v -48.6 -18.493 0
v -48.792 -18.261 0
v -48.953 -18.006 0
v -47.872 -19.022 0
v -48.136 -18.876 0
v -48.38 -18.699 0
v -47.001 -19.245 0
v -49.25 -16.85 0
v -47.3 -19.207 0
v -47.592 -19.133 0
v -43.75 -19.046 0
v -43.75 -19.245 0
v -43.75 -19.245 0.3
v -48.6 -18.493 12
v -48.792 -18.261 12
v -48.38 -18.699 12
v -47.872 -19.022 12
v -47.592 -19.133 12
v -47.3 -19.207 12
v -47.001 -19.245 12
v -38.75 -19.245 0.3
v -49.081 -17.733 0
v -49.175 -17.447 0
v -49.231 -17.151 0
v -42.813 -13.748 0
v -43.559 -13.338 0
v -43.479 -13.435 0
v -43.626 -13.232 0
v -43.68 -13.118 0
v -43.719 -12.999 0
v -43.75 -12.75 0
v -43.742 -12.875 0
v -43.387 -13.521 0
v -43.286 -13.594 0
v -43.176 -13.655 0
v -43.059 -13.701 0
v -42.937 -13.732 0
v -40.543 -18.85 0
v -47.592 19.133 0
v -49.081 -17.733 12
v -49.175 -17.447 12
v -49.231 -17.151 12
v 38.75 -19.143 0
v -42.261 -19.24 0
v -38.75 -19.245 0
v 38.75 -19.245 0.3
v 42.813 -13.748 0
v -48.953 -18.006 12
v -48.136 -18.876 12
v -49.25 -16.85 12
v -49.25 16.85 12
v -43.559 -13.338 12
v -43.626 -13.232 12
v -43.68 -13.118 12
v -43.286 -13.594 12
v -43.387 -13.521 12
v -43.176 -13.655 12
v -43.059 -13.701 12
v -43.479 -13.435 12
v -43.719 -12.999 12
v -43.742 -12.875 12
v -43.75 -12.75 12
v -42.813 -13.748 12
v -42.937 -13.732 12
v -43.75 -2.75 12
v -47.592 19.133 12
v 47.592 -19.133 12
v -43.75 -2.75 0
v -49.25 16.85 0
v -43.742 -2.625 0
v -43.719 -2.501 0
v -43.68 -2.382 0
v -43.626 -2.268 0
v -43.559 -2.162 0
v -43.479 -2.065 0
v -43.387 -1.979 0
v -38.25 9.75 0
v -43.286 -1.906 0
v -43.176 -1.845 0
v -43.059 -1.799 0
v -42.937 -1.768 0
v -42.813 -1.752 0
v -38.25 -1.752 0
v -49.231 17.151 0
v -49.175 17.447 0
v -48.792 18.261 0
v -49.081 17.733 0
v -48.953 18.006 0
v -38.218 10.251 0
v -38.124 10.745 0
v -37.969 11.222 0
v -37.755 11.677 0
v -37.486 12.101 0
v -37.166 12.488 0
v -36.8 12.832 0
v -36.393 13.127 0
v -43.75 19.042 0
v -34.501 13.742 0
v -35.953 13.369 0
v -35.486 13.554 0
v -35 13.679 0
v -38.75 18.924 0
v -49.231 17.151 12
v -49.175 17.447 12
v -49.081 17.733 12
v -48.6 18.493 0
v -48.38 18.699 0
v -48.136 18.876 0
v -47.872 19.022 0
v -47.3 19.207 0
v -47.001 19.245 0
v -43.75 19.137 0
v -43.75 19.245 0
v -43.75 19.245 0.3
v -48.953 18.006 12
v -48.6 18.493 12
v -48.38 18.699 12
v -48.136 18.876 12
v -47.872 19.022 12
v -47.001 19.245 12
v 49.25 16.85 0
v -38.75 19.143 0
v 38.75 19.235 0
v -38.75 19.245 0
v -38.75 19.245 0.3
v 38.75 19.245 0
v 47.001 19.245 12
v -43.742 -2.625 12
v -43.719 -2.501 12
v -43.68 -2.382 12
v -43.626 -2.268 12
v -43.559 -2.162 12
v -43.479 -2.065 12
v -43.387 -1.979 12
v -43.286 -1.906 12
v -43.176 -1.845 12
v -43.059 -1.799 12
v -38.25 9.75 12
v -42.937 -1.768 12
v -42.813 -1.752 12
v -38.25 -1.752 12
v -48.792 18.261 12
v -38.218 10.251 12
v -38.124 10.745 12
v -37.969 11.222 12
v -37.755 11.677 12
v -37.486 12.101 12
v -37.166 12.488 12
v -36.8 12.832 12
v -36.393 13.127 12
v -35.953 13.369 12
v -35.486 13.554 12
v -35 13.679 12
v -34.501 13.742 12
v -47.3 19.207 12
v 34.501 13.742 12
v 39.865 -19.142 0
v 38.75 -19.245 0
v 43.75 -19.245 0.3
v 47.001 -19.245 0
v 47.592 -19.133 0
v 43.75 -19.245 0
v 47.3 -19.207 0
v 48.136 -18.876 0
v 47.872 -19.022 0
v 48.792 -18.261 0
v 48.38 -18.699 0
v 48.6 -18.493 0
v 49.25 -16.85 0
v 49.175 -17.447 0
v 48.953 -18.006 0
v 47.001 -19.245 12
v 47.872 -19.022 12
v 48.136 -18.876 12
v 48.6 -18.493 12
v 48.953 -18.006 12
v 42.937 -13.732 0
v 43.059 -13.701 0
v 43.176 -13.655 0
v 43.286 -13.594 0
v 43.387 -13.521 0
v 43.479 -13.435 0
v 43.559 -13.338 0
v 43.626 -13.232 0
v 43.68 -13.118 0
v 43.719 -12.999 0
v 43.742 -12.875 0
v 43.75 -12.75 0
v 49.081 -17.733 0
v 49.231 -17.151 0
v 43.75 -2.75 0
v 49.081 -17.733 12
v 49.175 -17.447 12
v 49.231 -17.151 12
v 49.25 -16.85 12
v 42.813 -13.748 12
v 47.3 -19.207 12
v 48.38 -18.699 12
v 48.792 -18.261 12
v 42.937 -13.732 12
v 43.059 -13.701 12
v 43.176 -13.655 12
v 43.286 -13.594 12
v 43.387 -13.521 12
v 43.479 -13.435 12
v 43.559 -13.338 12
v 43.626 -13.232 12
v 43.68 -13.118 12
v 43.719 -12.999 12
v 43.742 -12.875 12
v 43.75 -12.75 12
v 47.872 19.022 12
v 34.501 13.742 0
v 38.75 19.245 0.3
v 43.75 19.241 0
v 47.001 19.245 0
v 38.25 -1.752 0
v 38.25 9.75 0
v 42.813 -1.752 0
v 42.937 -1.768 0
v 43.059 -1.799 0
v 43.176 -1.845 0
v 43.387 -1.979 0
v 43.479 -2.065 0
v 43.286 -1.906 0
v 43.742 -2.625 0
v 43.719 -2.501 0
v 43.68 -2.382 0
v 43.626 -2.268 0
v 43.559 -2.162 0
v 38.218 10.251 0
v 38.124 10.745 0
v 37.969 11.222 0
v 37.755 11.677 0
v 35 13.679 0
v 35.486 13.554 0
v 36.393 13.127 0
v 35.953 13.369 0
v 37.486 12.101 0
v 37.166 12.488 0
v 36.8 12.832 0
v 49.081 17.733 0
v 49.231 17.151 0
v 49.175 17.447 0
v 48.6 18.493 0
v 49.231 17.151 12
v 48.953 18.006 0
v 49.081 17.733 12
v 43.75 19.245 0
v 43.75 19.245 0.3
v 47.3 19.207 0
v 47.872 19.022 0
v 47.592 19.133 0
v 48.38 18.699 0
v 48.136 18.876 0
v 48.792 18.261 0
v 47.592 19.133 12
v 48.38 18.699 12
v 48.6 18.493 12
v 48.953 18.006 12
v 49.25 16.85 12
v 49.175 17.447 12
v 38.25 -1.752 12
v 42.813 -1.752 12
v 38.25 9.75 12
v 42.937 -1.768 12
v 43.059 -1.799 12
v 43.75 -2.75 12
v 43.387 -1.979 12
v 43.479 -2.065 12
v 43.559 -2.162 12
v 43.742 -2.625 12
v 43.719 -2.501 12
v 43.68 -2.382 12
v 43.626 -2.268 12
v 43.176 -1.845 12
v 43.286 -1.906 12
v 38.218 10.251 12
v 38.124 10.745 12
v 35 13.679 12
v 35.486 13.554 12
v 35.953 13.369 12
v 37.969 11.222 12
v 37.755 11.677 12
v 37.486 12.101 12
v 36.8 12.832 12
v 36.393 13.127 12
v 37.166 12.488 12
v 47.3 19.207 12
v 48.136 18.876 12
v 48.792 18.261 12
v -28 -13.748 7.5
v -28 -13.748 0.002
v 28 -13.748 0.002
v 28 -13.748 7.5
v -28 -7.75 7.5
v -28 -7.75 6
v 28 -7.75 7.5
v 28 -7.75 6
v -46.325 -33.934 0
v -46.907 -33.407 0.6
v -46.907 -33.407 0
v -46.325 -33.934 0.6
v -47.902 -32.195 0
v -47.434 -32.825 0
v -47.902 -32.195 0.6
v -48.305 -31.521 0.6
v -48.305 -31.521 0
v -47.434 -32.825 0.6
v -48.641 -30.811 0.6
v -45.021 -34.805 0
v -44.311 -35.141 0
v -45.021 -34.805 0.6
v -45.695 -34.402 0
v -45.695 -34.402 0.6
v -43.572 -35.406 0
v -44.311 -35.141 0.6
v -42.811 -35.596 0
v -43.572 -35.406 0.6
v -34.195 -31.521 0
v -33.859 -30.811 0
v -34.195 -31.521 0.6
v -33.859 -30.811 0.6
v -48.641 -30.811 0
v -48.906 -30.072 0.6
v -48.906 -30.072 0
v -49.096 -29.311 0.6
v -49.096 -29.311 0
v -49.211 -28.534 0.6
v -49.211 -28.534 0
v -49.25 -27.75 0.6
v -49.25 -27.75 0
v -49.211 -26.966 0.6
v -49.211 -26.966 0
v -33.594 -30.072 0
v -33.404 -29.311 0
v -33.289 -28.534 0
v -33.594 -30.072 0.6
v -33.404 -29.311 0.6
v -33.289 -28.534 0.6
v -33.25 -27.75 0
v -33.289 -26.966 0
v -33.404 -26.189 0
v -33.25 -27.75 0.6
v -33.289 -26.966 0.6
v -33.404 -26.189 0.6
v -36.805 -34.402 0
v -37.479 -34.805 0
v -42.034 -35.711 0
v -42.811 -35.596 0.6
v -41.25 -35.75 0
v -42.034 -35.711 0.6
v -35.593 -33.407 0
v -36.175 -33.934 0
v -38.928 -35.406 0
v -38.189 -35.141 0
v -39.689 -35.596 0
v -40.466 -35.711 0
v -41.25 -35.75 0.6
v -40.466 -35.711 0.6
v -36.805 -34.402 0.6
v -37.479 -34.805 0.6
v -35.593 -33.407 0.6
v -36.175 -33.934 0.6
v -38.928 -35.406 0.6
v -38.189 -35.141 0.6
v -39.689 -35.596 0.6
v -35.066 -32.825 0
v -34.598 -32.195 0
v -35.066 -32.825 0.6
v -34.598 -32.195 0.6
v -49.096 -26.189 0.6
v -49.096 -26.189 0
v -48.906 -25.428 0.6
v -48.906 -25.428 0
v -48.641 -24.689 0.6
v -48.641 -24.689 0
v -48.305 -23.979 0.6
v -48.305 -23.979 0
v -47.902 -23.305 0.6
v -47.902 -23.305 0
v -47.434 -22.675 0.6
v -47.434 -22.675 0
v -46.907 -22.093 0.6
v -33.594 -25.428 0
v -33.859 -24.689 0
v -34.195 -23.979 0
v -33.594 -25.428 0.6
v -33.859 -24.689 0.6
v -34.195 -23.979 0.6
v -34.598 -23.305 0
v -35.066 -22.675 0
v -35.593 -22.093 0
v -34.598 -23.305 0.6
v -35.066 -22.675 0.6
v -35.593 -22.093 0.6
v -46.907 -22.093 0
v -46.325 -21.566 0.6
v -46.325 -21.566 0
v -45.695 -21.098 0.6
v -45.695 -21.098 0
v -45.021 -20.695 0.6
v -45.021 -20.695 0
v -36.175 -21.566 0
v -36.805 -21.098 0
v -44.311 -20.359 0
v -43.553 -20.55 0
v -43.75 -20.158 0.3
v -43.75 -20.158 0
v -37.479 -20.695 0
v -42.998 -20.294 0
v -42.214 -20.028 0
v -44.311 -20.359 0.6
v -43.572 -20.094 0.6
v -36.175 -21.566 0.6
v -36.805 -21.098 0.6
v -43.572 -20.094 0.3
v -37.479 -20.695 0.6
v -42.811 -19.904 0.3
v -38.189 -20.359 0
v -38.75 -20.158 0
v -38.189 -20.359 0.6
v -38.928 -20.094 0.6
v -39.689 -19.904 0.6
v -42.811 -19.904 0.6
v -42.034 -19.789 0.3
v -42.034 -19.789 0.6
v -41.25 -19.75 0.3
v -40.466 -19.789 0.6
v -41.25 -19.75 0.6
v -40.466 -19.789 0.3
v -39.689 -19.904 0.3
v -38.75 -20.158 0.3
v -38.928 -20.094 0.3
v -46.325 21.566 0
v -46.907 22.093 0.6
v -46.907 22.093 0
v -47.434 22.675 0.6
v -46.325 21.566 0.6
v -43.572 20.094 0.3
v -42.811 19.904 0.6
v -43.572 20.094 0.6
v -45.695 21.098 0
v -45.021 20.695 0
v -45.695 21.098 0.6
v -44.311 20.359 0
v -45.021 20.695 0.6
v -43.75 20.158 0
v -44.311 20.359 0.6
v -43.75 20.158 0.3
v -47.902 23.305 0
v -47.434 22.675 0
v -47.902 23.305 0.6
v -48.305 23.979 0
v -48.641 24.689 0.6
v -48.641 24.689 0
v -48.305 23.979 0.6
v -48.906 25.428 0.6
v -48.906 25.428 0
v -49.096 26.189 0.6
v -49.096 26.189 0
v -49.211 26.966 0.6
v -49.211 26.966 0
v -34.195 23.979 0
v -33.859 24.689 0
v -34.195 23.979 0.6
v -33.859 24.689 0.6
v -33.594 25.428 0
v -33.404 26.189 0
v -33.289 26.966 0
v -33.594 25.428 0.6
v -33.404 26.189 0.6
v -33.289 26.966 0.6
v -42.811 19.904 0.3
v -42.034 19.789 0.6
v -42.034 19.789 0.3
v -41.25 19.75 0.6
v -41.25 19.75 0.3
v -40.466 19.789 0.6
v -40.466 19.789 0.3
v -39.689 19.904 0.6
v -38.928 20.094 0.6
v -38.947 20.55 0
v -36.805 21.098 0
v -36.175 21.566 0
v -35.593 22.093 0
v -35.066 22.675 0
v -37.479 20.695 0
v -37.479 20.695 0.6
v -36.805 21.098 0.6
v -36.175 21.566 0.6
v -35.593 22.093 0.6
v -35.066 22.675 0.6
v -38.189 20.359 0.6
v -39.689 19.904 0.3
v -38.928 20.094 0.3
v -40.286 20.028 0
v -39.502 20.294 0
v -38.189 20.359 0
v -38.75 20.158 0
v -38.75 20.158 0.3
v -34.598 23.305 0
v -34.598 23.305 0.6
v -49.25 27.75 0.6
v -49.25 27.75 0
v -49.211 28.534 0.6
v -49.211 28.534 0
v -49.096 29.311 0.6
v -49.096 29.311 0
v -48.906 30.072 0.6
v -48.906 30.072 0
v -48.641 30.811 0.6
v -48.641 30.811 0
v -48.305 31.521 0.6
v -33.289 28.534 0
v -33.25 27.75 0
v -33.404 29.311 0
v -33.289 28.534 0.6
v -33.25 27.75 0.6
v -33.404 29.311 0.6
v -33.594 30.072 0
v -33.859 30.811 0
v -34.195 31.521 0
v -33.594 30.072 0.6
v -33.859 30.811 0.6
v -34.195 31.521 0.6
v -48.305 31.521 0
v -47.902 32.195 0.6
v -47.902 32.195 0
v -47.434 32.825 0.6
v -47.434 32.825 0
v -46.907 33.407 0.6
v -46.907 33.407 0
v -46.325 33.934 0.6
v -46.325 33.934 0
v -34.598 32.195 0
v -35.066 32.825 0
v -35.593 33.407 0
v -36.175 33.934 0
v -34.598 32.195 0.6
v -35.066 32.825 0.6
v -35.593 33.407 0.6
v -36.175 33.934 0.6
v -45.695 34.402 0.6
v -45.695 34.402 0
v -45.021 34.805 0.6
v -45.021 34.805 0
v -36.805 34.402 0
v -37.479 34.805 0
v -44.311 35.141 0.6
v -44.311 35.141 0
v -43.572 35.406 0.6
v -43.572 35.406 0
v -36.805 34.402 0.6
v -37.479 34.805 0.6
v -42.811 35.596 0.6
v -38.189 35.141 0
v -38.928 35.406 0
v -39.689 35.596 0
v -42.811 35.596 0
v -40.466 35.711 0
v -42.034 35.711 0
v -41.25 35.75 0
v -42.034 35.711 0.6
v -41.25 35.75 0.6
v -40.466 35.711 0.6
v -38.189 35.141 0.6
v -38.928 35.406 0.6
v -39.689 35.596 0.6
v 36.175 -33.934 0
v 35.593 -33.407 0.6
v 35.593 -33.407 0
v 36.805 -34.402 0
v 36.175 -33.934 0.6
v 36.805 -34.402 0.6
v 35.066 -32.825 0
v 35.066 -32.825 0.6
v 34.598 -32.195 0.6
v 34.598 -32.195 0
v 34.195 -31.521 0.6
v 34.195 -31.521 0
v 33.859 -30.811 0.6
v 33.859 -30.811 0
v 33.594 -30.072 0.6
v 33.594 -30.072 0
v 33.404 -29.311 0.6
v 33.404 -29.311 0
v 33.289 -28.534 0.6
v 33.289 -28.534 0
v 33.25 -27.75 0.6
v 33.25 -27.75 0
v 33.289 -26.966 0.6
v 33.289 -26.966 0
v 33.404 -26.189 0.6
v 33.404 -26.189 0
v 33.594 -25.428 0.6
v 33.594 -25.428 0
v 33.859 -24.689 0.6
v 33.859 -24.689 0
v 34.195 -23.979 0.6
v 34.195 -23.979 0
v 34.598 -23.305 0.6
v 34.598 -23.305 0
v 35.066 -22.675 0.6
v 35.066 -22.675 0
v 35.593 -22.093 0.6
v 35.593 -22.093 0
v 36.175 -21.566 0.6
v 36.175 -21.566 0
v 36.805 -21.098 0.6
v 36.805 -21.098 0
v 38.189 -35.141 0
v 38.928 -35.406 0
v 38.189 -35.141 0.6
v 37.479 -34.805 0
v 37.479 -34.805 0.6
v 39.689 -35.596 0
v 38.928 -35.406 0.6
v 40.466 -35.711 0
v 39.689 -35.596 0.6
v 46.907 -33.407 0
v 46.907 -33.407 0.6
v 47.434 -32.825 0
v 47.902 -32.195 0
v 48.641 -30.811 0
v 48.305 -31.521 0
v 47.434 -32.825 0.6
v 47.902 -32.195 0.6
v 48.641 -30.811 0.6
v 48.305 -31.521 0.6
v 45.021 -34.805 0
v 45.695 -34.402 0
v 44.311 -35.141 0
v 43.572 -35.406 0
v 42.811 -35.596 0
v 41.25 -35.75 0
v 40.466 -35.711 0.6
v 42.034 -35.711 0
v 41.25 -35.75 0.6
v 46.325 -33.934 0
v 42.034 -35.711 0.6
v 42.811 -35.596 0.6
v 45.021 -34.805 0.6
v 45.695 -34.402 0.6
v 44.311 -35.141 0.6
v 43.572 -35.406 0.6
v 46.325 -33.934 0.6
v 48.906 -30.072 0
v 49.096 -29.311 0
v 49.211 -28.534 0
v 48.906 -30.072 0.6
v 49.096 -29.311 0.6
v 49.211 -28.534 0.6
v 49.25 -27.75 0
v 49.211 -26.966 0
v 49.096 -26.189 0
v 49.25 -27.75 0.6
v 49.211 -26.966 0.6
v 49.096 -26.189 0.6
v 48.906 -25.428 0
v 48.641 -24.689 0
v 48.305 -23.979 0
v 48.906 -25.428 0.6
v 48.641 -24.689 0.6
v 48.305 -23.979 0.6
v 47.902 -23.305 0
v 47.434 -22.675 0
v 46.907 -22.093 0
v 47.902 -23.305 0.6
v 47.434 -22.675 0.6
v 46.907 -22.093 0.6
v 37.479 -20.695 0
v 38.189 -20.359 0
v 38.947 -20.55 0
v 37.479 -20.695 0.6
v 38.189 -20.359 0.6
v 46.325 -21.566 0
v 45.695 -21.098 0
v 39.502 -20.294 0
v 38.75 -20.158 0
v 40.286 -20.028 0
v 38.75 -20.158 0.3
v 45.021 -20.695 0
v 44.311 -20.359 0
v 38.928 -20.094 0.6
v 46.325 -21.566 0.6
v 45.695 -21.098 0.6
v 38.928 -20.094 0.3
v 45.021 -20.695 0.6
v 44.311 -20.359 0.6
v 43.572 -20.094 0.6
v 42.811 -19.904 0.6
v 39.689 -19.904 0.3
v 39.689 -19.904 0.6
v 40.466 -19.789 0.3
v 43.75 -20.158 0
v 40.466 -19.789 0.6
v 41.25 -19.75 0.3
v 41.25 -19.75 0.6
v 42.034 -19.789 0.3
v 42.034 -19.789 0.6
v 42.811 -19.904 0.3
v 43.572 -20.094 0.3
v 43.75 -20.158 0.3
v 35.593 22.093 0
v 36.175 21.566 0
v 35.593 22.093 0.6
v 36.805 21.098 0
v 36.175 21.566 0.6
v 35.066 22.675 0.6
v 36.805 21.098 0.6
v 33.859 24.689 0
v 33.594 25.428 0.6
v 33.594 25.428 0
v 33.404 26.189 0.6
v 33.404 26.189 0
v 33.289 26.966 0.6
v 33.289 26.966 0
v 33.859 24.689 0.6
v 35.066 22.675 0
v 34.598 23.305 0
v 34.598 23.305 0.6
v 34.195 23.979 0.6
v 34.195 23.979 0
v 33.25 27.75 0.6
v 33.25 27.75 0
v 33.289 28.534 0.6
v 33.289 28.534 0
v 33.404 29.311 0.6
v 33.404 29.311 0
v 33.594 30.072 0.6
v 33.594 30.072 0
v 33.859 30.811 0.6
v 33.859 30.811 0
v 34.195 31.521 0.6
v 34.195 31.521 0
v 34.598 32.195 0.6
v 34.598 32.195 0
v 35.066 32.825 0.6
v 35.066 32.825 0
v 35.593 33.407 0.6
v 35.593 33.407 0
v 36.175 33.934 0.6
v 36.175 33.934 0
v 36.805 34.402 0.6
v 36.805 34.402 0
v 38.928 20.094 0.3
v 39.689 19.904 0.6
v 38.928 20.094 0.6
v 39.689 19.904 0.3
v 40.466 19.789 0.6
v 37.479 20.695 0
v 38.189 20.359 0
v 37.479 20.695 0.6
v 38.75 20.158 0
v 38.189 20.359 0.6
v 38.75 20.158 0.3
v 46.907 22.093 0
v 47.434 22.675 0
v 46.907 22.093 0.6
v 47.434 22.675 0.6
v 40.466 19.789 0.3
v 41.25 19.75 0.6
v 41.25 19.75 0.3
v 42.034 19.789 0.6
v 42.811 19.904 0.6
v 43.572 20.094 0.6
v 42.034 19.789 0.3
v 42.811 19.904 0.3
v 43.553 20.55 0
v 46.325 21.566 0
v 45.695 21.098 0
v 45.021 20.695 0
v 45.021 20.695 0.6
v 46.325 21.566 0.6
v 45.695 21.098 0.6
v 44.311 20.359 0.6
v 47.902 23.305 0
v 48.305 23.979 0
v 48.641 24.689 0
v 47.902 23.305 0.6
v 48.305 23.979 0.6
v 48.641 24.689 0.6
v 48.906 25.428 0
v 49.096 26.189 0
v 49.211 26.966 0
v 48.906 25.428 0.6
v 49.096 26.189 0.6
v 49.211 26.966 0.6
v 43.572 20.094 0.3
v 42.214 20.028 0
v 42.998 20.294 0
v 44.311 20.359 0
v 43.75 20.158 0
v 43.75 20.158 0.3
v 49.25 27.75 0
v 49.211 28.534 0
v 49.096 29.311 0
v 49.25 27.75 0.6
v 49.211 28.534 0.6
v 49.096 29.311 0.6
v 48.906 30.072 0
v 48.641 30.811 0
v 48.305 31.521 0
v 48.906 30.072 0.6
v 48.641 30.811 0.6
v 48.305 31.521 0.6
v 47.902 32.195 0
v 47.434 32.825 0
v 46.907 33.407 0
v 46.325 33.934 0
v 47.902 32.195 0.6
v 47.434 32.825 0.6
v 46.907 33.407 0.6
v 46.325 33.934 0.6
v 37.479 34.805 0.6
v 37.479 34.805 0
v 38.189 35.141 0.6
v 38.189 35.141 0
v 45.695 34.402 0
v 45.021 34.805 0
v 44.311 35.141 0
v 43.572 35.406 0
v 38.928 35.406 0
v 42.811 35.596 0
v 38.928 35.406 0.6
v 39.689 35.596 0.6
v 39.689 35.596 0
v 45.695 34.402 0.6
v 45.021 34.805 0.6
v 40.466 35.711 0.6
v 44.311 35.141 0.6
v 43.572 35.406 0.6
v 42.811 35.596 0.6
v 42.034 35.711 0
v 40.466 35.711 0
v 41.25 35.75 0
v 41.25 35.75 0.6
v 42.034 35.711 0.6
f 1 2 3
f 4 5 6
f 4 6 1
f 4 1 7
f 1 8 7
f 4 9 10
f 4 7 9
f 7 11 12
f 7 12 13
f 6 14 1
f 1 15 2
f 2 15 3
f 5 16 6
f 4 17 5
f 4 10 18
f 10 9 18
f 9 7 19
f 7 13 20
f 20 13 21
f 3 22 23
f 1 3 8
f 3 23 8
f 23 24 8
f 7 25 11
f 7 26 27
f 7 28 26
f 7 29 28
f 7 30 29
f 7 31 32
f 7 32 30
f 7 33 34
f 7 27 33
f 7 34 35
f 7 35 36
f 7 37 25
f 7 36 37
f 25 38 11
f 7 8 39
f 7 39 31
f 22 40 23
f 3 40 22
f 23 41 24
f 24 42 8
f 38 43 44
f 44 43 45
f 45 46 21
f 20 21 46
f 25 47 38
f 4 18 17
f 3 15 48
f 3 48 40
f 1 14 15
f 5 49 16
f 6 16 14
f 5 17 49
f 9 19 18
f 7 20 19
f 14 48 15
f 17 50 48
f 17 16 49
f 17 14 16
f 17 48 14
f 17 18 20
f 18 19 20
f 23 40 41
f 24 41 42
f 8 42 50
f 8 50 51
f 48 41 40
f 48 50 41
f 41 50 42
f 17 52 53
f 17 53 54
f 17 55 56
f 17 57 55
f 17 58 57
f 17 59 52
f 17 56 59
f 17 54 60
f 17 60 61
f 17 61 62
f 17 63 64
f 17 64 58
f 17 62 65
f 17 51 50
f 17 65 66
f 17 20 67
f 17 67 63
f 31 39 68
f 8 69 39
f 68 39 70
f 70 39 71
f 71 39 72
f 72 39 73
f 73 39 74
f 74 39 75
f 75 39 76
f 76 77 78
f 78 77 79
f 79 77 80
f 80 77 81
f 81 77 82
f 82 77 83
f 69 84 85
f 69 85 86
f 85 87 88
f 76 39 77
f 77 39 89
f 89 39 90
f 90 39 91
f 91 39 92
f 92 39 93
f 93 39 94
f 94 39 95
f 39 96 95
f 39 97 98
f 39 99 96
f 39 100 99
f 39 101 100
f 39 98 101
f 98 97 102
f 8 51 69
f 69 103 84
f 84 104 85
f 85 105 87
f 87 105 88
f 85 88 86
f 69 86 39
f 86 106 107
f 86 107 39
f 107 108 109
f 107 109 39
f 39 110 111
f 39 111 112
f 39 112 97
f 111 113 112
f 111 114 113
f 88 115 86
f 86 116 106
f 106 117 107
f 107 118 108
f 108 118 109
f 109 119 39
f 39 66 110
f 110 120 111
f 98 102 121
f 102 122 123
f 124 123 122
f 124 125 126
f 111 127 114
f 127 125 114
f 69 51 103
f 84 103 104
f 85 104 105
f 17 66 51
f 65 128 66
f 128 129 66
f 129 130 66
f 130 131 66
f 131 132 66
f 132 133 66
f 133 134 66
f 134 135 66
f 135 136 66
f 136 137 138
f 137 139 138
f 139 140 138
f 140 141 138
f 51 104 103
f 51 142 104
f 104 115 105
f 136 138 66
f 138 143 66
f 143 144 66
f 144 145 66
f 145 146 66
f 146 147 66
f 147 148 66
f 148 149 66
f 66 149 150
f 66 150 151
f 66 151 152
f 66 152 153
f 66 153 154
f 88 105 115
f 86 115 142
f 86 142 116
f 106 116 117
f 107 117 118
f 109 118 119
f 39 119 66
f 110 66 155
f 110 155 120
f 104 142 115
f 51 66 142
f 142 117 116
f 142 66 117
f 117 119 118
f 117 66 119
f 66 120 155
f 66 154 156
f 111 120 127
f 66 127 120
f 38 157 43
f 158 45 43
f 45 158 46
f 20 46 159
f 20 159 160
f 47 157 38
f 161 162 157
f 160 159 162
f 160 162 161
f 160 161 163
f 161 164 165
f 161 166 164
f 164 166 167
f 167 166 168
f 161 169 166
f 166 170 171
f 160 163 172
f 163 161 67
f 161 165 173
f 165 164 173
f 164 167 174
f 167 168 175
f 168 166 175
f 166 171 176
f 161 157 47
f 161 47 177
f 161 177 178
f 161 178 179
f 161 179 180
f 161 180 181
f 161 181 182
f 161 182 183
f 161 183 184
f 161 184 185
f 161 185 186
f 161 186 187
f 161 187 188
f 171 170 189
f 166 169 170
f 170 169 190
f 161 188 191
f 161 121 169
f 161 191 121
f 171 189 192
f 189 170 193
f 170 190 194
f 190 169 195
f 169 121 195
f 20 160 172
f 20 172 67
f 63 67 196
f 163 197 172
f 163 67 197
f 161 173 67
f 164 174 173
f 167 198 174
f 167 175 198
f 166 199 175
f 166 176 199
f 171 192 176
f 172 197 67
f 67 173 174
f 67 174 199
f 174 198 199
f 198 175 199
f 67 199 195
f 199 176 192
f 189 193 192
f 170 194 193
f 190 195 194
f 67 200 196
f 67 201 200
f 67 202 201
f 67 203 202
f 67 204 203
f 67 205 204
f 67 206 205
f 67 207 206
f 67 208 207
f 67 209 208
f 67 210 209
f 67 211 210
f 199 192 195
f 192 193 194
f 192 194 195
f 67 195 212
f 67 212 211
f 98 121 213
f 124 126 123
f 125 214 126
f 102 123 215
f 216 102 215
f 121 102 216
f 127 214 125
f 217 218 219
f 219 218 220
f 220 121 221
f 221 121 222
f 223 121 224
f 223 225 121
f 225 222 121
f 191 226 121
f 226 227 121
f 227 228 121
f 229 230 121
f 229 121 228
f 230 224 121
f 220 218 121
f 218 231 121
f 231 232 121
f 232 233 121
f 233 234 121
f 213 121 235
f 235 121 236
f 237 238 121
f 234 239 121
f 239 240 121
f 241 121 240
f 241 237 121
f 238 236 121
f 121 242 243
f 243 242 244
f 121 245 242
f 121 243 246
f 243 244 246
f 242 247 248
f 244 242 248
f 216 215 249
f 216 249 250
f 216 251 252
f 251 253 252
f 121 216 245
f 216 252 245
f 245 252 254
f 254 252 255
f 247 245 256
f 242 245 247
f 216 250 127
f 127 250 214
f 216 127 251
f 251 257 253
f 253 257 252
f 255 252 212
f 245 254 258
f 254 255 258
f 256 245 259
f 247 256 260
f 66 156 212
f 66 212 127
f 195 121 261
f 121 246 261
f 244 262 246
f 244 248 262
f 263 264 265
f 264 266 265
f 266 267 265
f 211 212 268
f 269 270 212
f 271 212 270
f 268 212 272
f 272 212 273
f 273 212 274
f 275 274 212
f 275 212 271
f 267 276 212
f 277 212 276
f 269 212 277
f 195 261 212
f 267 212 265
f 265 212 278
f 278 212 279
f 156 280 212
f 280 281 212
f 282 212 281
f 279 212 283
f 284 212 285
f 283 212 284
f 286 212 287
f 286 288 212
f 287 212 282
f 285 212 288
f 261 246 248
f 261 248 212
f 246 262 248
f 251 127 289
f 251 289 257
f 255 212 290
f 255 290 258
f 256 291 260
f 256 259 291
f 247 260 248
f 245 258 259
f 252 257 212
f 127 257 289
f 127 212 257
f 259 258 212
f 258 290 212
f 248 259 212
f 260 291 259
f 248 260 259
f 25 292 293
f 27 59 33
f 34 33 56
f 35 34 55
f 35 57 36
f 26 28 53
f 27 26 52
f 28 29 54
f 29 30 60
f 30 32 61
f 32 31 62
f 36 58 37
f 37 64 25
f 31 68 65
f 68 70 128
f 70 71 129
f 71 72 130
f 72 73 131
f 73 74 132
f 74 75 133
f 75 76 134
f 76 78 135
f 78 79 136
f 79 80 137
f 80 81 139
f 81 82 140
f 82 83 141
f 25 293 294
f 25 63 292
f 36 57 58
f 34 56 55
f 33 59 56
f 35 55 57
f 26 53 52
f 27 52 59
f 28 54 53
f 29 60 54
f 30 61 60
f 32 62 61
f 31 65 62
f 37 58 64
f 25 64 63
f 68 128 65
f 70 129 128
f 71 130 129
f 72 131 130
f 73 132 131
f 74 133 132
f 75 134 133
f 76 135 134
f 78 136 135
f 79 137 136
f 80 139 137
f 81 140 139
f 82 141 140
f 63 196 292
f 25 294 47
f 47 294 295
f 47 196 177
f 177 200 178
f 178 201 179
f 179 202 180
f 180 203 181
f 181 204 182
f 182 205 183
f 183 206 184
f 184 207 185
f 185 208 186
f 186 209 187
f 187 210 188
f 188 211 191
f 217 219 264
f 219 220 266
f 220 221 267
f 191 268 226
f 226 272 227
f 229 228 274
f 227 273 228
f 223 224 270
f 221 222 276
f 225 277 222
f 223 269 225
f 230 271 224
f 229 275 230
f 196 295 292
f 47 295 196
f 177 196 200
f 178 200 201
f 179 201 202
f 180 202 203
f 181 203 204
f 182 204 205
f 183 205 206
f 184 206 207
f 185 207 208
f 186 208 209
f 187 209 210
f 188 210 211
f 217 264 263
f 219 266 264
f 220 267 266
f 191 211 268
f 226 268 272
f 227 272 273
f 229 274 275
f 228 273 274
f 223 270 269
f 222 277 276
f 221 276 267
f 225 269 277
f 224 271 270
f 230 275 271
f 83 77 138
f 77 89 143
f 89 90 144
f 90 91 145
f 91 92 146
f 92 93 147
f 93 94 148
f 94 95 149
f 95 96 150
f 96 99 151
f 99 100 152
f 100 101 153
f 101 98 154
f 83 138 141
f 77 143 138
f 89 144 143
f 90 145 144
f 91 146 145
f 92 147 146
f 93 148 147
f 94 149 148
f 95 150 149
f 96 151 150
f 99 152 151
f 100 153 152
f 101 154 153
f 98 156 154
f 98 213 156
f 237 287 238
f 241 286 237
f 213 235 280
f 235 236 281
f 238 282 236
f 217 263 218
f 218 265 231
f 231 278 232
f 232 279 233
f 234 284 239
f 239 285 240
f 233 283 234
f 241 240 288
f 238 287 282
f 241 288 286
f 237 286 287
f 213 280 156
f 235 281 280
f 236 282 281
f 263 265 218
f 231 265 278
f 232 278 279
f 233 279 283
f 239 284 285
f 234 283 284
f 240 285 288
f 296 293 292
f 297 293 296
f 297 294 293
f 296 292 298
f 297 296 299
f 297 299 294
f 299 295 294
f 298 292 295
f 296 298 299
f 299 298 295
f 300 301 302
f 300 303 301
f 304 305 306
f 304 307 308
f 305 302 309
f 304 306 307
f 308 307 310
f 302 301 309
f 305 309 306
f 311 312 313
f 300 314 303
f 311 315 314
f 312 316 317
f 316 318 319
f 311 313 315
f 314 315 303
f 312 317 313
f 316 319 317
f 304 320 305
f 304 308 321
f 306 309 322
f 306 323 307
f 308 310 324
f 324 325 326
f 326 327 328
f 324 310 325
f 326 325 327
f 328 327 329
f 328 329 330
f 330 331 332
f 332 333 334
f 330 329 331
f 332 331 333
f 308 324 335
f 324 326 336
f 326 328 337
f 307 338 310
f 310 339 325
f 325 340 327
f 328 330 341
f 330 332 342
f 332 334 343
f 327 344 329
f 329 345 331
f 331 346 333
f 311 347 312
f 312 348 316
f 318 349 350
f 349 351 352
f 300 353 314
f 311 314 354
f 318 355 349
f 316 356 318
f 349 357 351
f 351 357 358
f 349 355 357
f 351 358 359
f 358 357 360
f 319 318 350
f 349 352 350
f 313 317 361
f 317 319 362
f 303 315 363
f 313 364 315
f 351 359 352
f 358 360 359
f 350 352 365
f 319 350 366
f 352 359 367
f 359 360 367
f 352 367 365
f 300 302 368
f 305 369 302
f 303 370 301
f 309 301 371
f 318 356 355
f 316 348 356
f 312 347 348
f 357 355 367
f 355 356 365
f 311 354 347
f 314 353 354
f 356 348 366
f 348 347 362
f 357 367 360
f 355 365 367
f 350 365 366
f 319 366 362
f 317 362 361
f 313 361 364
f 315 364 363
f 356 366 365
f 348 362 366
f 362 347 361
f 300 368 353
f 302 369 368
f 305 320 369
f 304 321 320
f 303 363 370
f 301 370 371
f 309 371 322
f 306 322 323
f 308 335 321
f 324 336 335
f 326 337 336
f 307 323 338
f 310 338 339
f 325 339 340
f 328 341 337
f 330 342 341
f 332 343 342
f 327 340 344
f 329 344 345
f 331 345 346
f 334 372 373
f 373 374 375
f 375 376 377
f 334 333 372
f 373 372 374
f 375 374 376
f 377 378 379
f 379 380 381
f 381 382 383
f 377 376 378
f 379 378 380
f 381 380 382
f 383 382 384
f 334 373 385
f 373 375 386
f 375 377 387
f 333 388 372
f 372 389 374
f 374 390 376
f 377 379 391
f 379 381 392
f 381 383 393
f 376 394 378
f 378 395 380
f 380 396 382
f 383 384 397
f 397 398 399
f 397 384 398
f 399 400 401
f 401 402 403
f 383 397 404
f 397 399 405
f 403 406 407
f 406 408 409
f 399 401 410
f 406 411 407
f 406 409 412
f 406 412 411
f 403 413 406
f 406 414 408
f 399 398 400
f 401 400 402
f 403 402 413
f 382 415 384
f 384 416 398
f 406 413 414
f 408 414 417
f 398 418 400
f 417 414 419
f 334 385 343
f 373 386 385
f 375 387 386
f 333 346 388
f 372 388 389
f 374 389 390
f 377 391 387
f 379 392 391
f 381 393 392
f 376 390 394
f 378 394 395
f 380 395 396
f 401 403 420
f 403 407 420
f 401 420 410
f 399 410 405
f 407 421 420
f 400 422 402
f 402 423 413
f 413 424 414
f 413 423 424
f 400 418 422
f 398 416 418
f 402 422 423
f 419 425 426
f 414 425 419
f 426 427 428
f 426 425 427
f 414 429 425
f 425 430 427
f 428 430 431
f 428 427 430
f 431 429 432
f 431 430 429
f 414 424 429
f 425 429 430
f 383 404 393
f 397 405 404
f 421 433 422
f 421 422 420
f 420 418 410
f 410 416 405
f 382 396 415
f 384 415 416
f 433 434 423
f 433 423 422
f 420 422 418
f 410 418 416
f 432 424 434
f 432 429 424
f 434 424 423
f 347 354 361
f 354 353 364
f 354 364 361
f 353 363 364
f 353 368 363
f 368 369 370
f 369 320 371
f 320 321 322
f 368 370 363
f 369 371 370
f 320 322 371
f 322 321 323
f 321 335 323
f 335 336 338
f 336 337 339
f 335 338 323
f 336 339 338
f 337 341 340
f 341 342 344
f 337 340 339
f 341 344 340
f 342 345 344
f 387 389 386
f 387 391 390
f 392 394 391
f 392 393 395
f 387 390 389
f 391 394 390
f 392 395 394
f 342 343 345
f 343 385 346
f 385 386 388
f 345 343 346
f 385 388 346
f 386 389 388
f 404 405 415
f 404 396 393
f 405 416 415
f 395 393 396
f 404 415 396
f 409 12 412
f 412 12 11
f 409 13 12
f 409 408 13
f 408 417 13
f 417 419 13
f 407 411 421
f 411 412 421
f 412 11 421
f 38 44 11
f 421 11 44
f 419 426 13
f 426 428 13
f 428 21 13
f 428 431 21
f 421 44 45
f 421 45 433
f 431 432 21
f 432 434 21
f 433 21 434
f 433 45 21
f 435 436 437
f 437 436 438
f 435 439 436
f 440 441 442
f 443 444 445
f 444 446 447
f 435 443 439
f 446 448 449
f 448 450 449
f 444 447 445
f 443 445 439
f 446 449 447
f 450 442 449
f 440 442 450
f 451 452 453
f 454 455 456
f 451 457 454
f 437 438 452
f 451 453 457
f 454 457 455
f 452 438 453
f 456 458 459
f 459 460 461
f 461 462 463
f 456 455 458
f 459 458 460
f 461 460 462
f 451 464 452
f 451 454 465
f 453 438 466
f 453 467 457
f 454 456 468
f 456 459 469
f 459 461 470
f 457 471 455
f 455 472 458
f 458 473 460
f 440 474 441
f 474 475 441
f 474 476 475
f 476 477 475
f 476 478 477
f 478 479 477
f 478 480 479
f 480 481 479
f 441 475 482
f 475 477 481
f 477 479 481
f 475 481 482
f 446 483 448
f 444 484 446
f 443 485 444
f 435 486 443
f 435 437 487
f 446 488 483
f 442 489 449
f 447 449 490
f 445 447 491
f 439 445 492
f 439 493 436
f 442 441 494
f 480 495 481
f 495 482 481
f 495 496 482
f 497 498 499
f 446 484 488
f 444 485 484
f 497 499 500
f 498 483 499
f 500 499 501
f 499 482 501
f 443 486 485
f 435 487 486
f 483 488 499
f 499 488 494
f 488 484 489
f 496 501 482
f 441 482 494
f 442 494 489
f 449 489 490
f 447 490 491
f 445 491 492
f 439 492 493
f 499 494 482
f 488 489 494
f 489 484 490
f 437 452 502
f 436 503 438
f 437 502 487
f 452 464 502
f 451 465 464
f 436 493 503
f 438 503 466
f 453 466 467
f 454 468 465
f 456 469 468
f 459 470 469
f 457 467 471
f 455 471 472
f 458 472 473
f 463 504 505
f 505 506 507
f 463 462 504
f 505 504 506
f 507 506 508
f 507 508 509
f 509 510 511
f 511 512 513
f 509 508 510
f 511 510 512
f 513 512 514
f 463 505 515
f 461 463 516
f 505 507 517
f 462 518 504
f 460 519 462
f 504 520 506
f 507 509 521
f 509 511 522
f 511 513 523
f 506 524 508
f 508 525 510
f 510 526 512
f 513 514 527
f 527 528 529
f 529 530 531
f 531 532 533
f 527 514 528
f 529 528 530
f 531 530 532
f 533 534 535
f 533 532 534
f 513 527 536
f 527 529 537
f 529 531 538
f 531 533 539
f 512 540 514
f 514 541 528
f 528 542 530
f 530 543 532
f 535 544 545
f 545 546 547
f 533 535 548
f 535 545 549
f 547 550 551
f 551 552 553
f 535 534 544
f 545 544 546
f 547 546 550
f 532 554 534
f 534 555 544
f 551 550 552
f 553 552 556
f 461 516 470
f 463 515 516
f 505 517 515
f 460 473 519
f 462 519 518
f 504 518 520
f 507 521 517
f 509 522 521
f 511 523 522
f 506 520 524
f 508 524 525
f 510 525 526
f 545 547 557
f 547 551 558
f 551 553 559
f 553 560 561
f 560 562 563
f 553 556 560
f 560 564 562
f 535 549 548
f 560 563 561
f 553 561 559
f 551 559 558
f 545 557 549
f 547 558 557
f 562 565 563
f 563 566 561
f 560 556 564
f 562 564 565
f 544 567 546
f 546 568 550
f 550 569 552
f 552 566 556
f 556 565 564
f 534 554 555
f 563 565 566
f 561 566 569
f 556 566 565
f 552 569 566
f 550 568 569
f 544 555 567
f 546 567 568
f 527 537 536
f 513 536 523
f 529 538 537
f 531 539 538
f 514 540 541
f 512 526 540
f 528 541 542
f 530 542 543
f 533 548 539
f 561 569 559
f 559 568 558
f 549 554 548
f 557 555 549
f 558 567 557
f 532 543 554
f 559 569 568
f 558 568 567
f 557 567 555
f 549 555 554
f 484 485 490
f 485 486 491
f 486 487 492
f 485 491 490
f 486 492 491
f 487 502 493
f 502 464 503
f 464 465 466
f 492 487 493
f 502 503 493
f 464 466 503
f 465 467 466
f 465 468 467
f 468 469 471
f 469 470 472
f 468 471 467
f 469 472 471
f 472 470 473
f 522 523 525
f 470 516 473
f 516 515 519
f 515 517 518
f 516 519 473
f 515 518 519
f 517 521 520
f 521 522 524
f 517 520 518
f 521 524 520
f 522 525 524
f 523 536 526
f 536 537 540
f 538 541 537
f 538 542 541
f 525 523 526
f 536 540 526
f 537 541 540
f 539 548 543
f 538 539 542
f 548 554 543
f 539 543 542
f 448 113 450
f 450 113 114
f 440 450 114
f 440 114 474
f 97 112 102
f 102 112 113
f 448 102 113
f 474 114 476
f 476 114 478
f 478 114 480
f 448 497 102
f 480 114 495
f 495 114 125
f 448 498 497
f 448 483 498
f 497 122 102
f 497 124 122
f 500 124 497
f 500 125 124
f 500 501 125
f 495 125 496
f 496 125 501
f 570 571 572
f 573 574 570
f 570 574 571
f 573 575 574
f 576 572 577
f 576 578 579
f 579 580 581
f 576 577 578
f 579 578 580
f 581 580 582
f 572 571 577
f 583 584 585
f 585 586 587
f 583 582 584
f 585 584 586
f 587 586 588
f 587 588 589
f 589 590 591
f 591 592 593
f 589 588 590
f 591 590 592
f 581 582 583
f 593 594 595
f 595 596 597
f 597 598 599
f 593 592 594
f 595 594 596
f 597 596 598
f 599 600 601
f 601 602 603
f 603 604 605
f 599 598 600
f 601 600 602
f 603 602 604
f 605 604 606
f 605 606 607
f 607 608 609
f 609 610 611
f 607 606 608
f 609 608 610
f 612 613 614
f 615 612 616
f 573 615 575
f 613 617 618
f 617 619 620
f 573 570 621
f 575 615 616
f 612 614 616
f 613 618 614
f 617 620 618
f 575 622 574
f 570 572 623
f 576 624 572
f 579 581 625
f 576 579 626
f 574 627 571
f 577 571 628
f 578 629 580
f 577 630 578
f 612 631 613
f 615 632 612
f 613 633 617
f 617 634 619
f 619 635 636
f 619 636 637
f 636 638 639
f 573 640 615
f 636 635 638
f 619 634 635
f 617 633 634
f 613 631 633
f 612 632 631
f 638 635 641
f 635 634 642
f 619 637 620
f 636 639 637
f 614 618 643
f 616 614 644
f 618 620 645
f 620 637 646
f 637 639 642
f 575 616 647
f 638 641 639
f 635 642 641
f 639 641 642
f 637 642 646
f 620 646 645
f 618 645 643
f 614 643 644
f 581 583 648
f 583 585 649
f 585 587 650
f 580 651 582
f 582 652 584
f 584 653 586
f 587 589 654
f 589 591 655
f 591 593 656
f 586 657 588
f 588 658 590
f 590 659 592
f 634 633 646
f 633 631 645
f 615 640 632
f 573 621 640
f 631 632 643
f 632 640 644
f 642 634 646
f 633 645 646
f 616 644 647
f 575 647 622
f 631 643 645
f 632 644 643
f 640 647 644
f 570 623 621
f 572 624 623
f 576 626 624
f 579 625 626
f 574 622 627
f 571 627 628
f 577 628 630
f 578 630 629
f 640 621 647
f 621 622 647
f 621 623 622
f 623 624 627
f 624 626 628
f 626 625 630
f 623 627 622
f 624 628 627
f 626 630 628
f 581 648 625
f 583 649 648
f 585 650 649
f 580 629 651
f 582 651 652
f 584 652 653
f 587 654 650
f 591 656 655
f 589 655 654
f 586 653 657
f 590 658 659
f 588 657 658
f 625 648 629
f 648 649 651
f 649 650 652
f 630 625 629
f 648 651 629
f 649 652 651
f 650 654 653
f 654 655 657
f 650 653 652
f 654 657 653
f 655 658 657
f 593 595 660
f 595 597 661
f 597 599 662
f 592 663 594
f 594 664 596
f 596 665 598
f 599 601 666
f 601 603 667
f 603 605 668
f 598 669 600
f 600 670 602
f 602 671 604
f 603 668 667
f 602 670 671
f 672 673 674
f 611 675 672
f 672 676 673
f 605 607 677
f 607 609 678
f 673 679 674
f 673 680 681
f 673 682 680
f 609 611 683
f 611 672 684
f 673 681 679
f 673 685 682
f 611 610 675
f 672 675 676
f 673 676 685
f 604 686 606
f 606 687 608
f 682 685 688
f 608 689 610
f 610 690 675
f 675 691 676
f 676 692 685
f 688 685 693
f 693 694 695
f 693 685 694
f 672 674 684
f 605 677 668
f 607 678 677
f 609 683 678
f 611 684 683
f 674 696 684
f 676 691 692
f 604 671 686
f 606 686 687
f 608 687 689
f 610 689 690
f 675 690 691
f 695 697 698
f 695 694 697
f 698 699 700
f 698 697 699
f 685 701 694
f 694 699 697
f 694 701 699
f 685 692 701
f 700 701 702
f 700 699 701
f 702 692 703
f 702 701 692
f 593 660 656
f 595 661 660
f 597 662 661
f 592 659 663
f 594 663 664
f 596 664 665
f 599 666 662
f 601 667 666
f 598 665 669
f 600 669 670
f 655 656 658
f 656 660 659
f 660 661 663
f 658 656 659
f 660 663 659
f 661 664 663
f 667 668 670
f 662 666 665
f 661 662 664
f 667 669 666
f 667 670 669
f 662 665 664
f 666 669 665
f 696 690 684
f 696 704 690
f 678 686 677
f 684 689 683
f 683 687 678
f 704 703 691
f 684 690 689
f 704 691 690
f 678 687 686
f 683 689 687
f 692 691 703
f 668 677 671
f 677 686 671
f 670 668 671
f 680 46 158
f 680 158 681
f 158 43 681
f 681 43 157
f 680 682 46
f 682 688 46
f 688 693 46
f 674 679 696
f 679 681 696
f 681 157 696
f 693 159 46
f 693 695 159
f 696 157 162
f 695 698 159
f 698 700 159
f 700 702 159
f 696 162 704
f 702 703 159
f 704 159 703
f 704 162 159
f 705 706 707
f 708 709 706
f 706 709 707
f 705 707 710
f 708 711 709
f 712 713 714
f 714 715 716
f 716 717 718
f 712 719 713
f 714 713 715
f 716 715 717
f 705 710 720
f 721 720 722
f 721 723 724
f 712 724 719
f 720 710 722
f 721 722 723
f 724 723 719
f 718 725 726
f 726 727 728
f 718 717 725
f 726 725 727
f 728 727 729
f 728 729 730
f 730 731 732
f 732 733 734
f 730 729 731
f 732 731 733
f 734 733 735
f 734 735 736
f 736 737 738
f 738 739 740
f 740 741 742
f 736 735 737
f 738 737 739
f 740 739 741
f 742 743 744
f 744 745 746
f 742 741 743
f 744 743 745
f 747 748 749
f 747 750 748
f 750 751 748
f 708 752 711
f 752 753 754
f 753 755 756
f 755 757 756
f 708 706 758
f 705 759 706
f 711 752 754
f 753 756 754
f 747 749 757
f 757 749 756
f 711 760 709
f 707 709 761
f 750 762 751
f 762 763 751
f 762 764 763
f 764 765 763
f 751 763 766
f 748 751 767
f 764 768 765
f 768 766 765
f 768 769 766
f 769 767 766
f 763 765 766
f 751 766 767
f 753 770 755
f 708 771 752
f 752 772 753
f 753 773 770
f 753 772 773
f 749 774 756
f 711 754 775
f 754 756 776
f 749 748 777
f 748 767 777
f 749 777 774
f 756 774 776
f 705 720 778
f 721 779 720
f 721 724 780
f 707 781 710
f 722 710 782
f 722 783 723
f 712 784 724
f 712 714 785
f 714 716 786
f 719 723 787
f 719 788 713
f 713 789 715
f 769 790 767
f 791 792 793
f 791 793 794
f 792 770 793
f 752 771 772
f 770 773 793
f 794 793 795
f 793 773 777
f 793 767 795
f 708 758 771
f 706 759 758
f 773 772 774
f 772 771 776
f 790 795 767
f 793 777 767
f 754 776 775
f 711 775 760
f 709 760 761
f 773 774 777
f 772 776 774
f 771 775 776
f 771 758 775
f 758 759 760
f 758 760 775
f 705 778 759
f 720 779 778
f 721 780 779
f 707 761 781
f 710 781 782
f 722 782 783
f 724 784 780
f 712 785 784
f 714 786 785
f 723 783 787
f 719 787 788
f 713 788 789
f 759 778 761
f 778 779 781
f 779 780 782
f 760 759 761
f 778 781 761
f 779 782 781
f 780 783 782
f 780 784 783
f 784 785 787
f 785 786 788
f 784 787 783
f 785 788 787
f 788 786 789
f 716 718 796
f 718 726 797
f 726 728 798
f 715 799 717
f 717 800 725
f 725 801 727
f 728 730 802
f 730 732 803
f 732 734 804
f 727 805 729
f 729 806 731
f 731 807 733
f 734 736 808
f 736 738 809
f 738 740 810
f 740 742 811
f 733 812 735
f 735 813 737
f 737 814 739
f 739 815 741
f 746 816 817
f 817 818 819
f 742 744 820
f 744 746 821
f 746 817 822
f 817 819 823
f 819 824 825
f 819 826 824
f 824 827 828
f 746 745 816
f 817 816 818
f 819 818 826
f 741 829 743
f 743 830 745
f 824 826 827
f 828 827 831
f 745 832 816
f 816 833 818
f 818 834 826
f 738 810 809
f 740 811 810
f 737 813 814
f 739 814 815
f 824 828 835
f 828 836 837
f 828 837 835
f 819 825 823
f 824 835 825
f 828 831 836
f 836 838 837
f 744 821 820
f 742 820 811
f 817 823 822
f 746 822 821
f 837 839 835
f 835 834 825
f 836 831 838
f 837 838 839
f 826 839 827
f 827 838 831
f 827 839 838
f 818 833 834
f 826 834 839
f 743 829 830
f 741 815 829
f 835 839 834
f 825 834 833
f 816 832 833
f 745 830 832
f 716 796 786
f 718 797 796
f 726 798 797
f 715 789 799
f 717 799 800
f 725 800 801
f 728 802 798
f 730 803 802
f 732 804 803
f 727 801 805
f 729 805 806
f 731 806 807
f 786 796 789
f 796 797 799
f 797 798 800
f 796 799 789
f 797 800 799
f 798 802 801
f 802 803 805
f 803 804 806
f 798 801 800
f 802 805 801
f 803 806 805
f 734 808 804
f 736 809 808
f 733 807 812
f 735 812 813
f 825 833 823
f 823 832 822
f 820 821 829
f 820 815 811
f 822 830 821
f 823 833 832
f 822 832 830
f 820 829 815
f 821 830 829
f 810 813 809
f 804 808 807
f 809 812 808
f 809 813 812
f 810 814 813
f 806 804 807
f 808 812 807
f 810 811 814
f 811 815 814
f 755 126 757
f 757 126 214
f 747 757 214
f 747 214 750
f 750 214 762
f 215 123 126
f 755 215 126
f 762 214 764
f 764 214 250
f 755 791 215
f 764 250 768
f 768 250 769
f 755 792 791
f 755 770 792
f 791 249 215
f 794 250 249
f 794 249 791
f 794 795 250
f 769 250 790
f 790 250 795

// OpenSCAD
$fn = 50;

union() {
	difference() {
		union() {
			hull() {
				translate(v = [-46.85, 16.85, 0]) {
					cylinder(h = 12, r = 2.4);
				}
				translate(v = [46.85, 16.85, 0]) {
					cylinder(h = 12, r = 2.4);
				}
				translate(v = [-46.85, -16.85, 0]) {
					cylinder(h = 12, r = 2.4);
				}
				translate(v = [46.85, -16.85, 0]) {
					cylinder(h = 12, r = 2.4);
				}
			}
		}
		union() {
			translate(v = [0.0, -7.75, -0.1]) {
				hull() {
					translate(v = [-42.75, 5.0, 0]) {
						cylinder(h = 12.2, r = 1.0);
					}
					translate(v = [42.75, 5.0, 0]) {
						cylinder(h = 12.2, r = 1.0);
					}
					translate(v = [-42.75, -5.0, 0]) {
						cylinder(h = 12.2, r = 1.0);
					}
					translate(v = [42.75, -5.0, 0]) {
						cylinder(h = 12.2, r = 1.0);
					}
				}
			}
			translate(v = [0.0, 0.0, -0.1]) {
				hull() {
					translate(v = [-34.25, 9.75, 0]) {
						cylinder(h = 12.2, r = 4.0);
					}
					translate(v = [34.25, 9.75, 0]) {
						cylinder(h = 12.2, r = 4.0);
					}
					translate(v = [-34.25, -9.75, 0]) {
						cylinder(h = 12.2, r = 4.0);
					}
					translate(v = [34.25, -9.75, 0]) {
						cylinder(h = 12.2, r = 4.0);
					}
				}
			}
		}
	}
	union() {
		#translate(v = [-28.0, -13.75, 0]) {
			rotate(a = [90, 0, 90]) {
				linear_extrude(height = 56.0) {
					polygon(points = [[-1.8, 0], [0, 0], [6.0, 6.0], [6.0, 7.5], [-1.8, 7.5]]);
				}
			}
		}
		translate(v = [-41.25, -27.75, 0]) {
			linear_extrude(height = 0.6) {
				polygon(points = [[8.0, 0.0], [7.961477813377575, 0.7841371226364848], [7.8462822432258434, 1.560722576129026], [7.655522685857671, 2.3222774180356986], [7.391036260090294, 3.0614674589207183], [7.05537011478684, 3.771173894607981], [6.651756898420362, 4.444561864156817], [6.184083626901896, 5.075146273309164], [5.656854249492381, 5.656854249492381], [5.075146273309164, 6.184083626901895], [4.444561864156818, 6.651756898420362], [3.7711738946079825, 7.0553701147868395], [3.0614674589207187, 7.391036260090294], [2.3222774180356986, 7.6555226858576715], [1.5607225761290267, 7.8462822432258434], [0.7841371226364862, 7.9614778133775745], [4.898587196589413e-16, 8.0], [-0.7841371226364852, 7.961477813377575], [-1.5607225761290255, 7.8462822432258434], [-2.3222774180356973, 7.6555226858576715], [-3.061467458920718, 7.391036260090294], [-3.7711738946079816, 7.05537011478684], [-4.444561864156816, 6.651756898420363], [-5.075146273309163, 6.184083626901897], [-5.65685424949238, 5.656854249492381], [-6.184083626901896, 5.075146273309164], [-6.651756898420363, 4.444561864156817], [-7.0553701147868395, 3.7711738946079825], [-7.391036260090294, 3.061467458920719], [-7.655522685857671, 2.322277418035699], [-7.8462822432258434, 1.5607225761290289], [-7.9614778133775745, 0.7841371226364866], [-8.0, 9.797174393178826e-16], [-7.961477813377575, -0.7841371226364847], [-7.8462822432258434, -1.5607225761290269], [-7.6555226858576715, -2.322277418035697], [-7.391036260090295, -3.0614674589207174], [-7.05537011478684, -3.771173894607981], [-6.651756898420364, -4.444561864156816], [-6.184083626901897, -5.075146273309162], [-5.6568542494923815, -5.65685424949238], [-5.0751462733091675, -6.184083626901893], [-4.444561864156817, -6.651756898420362], [-3.771173894607983, -7.0553701147868395], [-3.0614674589207227, -7.391036260090292], [-2.3222774180356995, -7.655522685857671], [-1.5607225761290293, -7.846282243225843], [-0.7841371226364836, -7.961477813377575], [-1.4695761589768238e-15, -8.0], [0.7841371226364807, -7.961477813377575], [1.5607225761290264, -7.8462822432258434], [2.3222774180356964, -7.6555226858576715], [3.06146745892072, -7.391036260090293], [3.7711738946079807, -7.05537011478684], [4.444561864156815, -6.651756898420364], [5.075146273309165, -6.184083626901895], [5.656854249492379, -5.6568542494923815], [6.184083626901892, -5.0751462733091675], [6.651756898420362, -4.444561864156817], [7.055370114786839, -3.7711738946079834], [7.391036260090292, -3.061467458920723], [7.655522685857671, -2.3222774180357], [7.846282243225843, -1.5607225761290298], [7.961477813377575, -0.784137122636484]]);
			}
		}
		translate(v = [-43.75, -20.55, 0]) {
			cube(size = [5.0, 1.6999999999999993, 0.3]);
		}
		translate(v = [-41.25, 27.75, 0]) {
			linear_extrude(height = 0.6) {
				polygon(points = [[8.0, 0.0], [7.961477813377575, 0.7841371226364848], [7.8462822432258434, 1.560722576129026], [7.655522685857671, 2.3222774180356986], [7.391036260090294, 3.0614674589207183], [7.05537011478684, 3.771173894607981], [6.651756898420362, 4.444561864156817], [6.184083626901896, 5.075146273309164], [5.656854249492381, 5.656854249492381], [5.075146273309164, 6.184083626901895], [4.444561864156818, 6.651756898420362], [3.7711738946079825, 7.0553701147868395], [3.0614674589207187, 7.391036260090294], [2.3222774180356986, 7.6555226858576715], [1.5607225761290267, 7.8462822432258434], [0.7841371226364862, 7.9614778133775745], [4.898587196589413e-16, 8.0], [-0.7841371226364852, 7.961477813377575], [-1.5607225761290255, 7.8462822432258434], [-2.3222774180356973, 7.6555226858576715], [-3.061467458920718, 7.391036260090294], [-3.7711738946079816, 7.05537011478684], [-4.444561864156816, 6.651756898420363], [-5.075146273309163, 6.184083626901897], [-5.65685424949238, 5.656854249492381], [-6.184083626901896, 5.075146273309164], [-6.651756898420363, 4.444561864156817], [-7.0553701147868395, 3.7711738946079825], [-7.391036260090294, 3.061467458920719], [-7.655522685857671, 2.322277418035699], [-7.8462822432258434, 1.5607225761290289], [-7.9614778133775745, 0.7841371226364866], [-8.0, 9.797174393178826e-16], [-7.961477813377575, -0.7841371226364847], [-7.8462822432258434, -1.5607225761290269], [-7.6555226858576715, -2.322277418035697], [-7.391036260090295, -3.0614674589207174], [-7.05537011478684, -3.771173894607981], [-6.651756898420364, -4.444561864156816], [-6.184083626901897, -5.075146273309162], [-5.6568542494923815, -5.65685424949238], [-5.0751462733091675, -6.184083626901893], [-4.444561864156817, -6.651756898420362], [-3.771173894607983, -7.0553701147868395], [-3.0614674589207227, -7.391036260090292], [-2.3222774180356995, -7.655522685857671], [-1.5607225761290293, -7.846282243225843], [-0.7841371226364836, -7.961477813377575], [-1.4695761589768238e-15, -8.0], [0.7841371226364807, -7.961477813377575], [1.5607225761290264, -7.8462822432258434], [2.3222774180356964, -7.6555226858576715], [3.06146745892072, -7.391036260090293], [3.7711738946079807, -7.05537011478684], [4.444561864156815, -6.651756898420364], [5.075146273309165, -6.184083626901895], [5.656854249492379, -5.6568542494923815], [6.184083626901892, -5.0751462733091675], [6.651756898420362, -4.444561864156817], [7.055370114786839, -3.7711738946079834], [7.391036260090292, -3.061467458920723], [7.655522685857671, -2.3222774180357], [7.846282243225843, -1.5607225761290298], [7.961477813377575, -0.784137122636484]]);
			}
		}
		translate(v = [-43.75, 18.85, 0]) {
			cube(size = [5.0, 1.6999999999999993, 0.3]);
		}
		translate(v = [41.25, -27.75, 0]) {
			linear_extrude(height = 0.6) {
				polygon(points = [[8.0, 0.0], [7.961477813377575, 0.7841371226364848], [7.8462822432258434, 1.560722576129026], [7.655522685857671, 2.3222774180356986], [7.391036260090294, 3.0614674589207183], [7.05537011478684, 3.771173894607981], [6.651756898420362, 4.444561864156817], [6.184083626901896, 5.075146273309164], [5.656854249492381, 5.656854249492381], [5.075146273309164, 6.184083626901895], [4.444561864156818, 6.651756898420362], [3.7711738946079825, 7.0553701147868395], [3.0614674589207187, 7.391036260090294], [2.3222774180356986, 7.6555226858576715], [1.5607225761290267, 7.8462822432258434], [0.7841371226364862, 7.9614778133775745], [4.898587196589413e-16, 8.0], [-0.7841371226364852, 7.961477813377575], [-1.5607225761290255, 7.8462822432258434], [-2.3222774180356973, 7.6555226858576715], [-3.061467458920718, 7.391036260090294], [-3.7711738946079816, 7.05537011478684], [-4.444561864156816, 6.651756898420363], [-5.075146273309163, 6.184083626901897], [-5.65685424949238, 5.656854249492381], [-6.184083626901896, 5.075146273309164], [-6.651756898420363, 4.444561864156817], [-7.0553701147868395, 3.7711738946079825], [-7.391036260090294, 3.061467458920719], [-7.655522685857671, 2.322277418035699], [-7.8462822432258434, 1.5607225761290289], [-7.9614778133775745, 0.7841371226364866], [-8.0, 9.797174393178826e-16], [-7.961477813377575, -0.7841371226364847], [-7.8462822432258434, -1.5607225761290269], [-7.6555226858576715, -2.322277418035697], [-7.391036260090295, -3.0614674589207174], [-7.05537011478684, -3.771173894607981], [-6.651756898420364, -4.444561864156816], [-6.184083626901897, -5.075146273309162], [-5.6568542494923815, -5.65685424949238], [-5.0751462733091675, -6.184083626901893], [-4.444561864156817, -6.651756898420362], [-3.771173894607983, -7.0553701147868395], [-3.0614674589207227, -7.391036260090292], [-2.3222774180356995, -7.655522685857671], [-1.5607225761290293, -7.846282243225843], [-0.7841371226364836, -7.961477813377575], [-1.4695761589768238e-15, -8.0], [0.7841371226364807, -7.961477813377575], [1.5607225761290264, -7.8462822432258434], [2.3222774180356964, -7.6555226858576715], [3.06146745892072, -7.391036260090293], [3.7711738946079807, -7.05537011478684], [4.444561864156815, -6.651756898420364], [5.075146273309165, -6.184083626901895], [5.656854249492379, -5.6568542494923815], [6.184083626901892, -5.0751462733091675], [6.651756898420362, -4.444561864156817], [7.055370114786839, -3.7711738946079834], [7.391036260090292, -3.061467458920723], [7.655522685857671, -2.3222774180357], [7.846282243225843, -1.5607225761290298], [7.961477813377575, -0.784137122636484]]);
			}
		}
		translate(v = [38.75, -20.55, 0]) {
			cube(size = [5.0, 1.6999999999999993, 0.3]);
		}
		translate(v = [41.25, 27.75, 0]) {
			linear_extrude(height = 0.6) {
				polygon(points = [[8.0, 0.0], [7.961477813377575, 0.7841371226364848], [7.8462822432258434, 1.560722576129026], [7.655522685857671, 2.3222774180356986], [7.391036260090294, 3.0614674589207183], [7.05537011478684, 3.771173894607981], [6.651756898420362, 4.444561864156817], [6.184083626901896, 5.075146273309164], [5.656854249492381, 5.656854249492381], [5.075146273309164, 6.184083626901895], [4.444561864156818, 6.651756898420362], [3.7711738946079825, 7.0553701147868395], [3.0614674589207187, 7.391036260090294], [2.3222774180356986, 7.6555226858576715], [1.5607225761290267, 7.8462822432258434], [0.7841371226364862, 7.9614778133775745], [4.898587196589413e-16, 8.0], [-0.7841371226364852, 7.961477813377575], [-1.5607225761290255, 7.8462822432258434], [-2.3222774180356973, 7.6555226858576715], [-3.061467458920718, 7.391036260090294], [-3.7711738946079816, 7.05537011478684], [-4.444561864156816, 6.651756898420363], [-5.075146273309163, 6.184083626901897], [-5.65685424949238, 5.656854249492381], [-6.184083626901896, 5.075146273309164], [-6.651756898420363, 4.444561864156817], [-7.0553701147868395, 3.7711738946079825], [-7.391036260090294, 3.061467458920719], [-7.655522685857671, 2.322277418035699], [-7.8462822432258434, 1.5607225761290289], [-7.9614778133775745, 0.7841371226364866], [-8.0, 9.797174393178826e-16], [-7.961477813377575, -0.7841371226364847], [-7.8462822432258434, -1.5607225761290269], [-7.6555226858576715, -2.322277418035697], [-7.391036260090295, -3.0614674589207174], [-7.05537011478684, -3.771173894607981], [-6.651756898420364, -4.444561864156816], [-6.184083626901897, -5.075146273309162], [-5.6568542494923815, -5.65685424949238], [-5.0751462733091675, -6.184083626901893], [-4.444561864156817, -6.651756898420362], [-3.771173894607983, -7.0553701147868395], [-3.0614674589207227, -7.391036260090292], [-2.3222774180356995, -7.655522685857671], [-1.5607225761290293, -7.846282243225843], [-0.7841371226364836, -7.961477813377575], [-1.4695761589768238e-15, -8.0], [0.7841371226364807, -7.961477813377575], [1.5607225761290264, -7.8462822432258434], [2.3222774180356964, -7.6555226858576715], [3.06146745892072, -7.391036260090293], [3.7711738946079807, -7.05537011478684], [4.444561864156815, -6.651756898420364], [5.075146273309165, -6.184083626901895], [5.656854249492379, -5.6568542494923815], [6.184083626901892, -5.0751462733091675], [6.651756898420362, -4.444561864156817], [7.055370114786839, -3.7711738946079834], [7.391036260090292, -3.061467458920723], [7.655522685857671, -2.3222774180357], [7.846282243225843, -1.5607225761290298], [7.961477813377575, -0.784137122636484]]);
			}
		}
		translate(v = [38.75, 18.85, 0]) {
			cube(size = [5.0, 1.6999999999999993, 0.3]);
		}
	}
}
